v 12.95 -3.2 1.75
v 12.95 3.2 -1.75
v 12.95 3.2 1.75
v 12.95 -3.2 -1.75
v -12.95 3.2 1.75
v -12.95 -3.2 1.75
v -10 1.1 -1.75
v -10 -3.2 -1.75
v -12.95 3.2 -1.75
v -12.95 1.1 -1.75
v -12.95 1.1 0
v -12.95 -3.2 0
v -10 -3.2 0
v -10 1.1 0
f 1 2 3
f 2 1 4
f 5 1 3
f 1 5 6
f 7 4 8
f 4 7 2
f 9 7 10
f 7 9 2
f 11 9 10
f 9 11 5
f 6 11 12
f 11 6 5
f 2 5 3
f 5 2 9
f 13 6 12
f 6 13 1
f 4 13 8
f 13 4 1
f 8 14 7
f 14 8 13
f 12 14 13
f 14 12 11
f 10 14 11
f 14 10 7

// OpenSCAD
translate([-12.95, -3.2, -1.75])
difference() {
    // Base block
    cube([25.9, 6.4, 3.5]);
    
    // Optical gap
    translate([-2.95, -4.3, -1.75])
    cube([5.9, 8.6, 3.5]);
    
    // Mounting hole
    translate([0, 0, -1.75])
    cylinder(h = 3.5, d = 3, $fn = 64);
}
